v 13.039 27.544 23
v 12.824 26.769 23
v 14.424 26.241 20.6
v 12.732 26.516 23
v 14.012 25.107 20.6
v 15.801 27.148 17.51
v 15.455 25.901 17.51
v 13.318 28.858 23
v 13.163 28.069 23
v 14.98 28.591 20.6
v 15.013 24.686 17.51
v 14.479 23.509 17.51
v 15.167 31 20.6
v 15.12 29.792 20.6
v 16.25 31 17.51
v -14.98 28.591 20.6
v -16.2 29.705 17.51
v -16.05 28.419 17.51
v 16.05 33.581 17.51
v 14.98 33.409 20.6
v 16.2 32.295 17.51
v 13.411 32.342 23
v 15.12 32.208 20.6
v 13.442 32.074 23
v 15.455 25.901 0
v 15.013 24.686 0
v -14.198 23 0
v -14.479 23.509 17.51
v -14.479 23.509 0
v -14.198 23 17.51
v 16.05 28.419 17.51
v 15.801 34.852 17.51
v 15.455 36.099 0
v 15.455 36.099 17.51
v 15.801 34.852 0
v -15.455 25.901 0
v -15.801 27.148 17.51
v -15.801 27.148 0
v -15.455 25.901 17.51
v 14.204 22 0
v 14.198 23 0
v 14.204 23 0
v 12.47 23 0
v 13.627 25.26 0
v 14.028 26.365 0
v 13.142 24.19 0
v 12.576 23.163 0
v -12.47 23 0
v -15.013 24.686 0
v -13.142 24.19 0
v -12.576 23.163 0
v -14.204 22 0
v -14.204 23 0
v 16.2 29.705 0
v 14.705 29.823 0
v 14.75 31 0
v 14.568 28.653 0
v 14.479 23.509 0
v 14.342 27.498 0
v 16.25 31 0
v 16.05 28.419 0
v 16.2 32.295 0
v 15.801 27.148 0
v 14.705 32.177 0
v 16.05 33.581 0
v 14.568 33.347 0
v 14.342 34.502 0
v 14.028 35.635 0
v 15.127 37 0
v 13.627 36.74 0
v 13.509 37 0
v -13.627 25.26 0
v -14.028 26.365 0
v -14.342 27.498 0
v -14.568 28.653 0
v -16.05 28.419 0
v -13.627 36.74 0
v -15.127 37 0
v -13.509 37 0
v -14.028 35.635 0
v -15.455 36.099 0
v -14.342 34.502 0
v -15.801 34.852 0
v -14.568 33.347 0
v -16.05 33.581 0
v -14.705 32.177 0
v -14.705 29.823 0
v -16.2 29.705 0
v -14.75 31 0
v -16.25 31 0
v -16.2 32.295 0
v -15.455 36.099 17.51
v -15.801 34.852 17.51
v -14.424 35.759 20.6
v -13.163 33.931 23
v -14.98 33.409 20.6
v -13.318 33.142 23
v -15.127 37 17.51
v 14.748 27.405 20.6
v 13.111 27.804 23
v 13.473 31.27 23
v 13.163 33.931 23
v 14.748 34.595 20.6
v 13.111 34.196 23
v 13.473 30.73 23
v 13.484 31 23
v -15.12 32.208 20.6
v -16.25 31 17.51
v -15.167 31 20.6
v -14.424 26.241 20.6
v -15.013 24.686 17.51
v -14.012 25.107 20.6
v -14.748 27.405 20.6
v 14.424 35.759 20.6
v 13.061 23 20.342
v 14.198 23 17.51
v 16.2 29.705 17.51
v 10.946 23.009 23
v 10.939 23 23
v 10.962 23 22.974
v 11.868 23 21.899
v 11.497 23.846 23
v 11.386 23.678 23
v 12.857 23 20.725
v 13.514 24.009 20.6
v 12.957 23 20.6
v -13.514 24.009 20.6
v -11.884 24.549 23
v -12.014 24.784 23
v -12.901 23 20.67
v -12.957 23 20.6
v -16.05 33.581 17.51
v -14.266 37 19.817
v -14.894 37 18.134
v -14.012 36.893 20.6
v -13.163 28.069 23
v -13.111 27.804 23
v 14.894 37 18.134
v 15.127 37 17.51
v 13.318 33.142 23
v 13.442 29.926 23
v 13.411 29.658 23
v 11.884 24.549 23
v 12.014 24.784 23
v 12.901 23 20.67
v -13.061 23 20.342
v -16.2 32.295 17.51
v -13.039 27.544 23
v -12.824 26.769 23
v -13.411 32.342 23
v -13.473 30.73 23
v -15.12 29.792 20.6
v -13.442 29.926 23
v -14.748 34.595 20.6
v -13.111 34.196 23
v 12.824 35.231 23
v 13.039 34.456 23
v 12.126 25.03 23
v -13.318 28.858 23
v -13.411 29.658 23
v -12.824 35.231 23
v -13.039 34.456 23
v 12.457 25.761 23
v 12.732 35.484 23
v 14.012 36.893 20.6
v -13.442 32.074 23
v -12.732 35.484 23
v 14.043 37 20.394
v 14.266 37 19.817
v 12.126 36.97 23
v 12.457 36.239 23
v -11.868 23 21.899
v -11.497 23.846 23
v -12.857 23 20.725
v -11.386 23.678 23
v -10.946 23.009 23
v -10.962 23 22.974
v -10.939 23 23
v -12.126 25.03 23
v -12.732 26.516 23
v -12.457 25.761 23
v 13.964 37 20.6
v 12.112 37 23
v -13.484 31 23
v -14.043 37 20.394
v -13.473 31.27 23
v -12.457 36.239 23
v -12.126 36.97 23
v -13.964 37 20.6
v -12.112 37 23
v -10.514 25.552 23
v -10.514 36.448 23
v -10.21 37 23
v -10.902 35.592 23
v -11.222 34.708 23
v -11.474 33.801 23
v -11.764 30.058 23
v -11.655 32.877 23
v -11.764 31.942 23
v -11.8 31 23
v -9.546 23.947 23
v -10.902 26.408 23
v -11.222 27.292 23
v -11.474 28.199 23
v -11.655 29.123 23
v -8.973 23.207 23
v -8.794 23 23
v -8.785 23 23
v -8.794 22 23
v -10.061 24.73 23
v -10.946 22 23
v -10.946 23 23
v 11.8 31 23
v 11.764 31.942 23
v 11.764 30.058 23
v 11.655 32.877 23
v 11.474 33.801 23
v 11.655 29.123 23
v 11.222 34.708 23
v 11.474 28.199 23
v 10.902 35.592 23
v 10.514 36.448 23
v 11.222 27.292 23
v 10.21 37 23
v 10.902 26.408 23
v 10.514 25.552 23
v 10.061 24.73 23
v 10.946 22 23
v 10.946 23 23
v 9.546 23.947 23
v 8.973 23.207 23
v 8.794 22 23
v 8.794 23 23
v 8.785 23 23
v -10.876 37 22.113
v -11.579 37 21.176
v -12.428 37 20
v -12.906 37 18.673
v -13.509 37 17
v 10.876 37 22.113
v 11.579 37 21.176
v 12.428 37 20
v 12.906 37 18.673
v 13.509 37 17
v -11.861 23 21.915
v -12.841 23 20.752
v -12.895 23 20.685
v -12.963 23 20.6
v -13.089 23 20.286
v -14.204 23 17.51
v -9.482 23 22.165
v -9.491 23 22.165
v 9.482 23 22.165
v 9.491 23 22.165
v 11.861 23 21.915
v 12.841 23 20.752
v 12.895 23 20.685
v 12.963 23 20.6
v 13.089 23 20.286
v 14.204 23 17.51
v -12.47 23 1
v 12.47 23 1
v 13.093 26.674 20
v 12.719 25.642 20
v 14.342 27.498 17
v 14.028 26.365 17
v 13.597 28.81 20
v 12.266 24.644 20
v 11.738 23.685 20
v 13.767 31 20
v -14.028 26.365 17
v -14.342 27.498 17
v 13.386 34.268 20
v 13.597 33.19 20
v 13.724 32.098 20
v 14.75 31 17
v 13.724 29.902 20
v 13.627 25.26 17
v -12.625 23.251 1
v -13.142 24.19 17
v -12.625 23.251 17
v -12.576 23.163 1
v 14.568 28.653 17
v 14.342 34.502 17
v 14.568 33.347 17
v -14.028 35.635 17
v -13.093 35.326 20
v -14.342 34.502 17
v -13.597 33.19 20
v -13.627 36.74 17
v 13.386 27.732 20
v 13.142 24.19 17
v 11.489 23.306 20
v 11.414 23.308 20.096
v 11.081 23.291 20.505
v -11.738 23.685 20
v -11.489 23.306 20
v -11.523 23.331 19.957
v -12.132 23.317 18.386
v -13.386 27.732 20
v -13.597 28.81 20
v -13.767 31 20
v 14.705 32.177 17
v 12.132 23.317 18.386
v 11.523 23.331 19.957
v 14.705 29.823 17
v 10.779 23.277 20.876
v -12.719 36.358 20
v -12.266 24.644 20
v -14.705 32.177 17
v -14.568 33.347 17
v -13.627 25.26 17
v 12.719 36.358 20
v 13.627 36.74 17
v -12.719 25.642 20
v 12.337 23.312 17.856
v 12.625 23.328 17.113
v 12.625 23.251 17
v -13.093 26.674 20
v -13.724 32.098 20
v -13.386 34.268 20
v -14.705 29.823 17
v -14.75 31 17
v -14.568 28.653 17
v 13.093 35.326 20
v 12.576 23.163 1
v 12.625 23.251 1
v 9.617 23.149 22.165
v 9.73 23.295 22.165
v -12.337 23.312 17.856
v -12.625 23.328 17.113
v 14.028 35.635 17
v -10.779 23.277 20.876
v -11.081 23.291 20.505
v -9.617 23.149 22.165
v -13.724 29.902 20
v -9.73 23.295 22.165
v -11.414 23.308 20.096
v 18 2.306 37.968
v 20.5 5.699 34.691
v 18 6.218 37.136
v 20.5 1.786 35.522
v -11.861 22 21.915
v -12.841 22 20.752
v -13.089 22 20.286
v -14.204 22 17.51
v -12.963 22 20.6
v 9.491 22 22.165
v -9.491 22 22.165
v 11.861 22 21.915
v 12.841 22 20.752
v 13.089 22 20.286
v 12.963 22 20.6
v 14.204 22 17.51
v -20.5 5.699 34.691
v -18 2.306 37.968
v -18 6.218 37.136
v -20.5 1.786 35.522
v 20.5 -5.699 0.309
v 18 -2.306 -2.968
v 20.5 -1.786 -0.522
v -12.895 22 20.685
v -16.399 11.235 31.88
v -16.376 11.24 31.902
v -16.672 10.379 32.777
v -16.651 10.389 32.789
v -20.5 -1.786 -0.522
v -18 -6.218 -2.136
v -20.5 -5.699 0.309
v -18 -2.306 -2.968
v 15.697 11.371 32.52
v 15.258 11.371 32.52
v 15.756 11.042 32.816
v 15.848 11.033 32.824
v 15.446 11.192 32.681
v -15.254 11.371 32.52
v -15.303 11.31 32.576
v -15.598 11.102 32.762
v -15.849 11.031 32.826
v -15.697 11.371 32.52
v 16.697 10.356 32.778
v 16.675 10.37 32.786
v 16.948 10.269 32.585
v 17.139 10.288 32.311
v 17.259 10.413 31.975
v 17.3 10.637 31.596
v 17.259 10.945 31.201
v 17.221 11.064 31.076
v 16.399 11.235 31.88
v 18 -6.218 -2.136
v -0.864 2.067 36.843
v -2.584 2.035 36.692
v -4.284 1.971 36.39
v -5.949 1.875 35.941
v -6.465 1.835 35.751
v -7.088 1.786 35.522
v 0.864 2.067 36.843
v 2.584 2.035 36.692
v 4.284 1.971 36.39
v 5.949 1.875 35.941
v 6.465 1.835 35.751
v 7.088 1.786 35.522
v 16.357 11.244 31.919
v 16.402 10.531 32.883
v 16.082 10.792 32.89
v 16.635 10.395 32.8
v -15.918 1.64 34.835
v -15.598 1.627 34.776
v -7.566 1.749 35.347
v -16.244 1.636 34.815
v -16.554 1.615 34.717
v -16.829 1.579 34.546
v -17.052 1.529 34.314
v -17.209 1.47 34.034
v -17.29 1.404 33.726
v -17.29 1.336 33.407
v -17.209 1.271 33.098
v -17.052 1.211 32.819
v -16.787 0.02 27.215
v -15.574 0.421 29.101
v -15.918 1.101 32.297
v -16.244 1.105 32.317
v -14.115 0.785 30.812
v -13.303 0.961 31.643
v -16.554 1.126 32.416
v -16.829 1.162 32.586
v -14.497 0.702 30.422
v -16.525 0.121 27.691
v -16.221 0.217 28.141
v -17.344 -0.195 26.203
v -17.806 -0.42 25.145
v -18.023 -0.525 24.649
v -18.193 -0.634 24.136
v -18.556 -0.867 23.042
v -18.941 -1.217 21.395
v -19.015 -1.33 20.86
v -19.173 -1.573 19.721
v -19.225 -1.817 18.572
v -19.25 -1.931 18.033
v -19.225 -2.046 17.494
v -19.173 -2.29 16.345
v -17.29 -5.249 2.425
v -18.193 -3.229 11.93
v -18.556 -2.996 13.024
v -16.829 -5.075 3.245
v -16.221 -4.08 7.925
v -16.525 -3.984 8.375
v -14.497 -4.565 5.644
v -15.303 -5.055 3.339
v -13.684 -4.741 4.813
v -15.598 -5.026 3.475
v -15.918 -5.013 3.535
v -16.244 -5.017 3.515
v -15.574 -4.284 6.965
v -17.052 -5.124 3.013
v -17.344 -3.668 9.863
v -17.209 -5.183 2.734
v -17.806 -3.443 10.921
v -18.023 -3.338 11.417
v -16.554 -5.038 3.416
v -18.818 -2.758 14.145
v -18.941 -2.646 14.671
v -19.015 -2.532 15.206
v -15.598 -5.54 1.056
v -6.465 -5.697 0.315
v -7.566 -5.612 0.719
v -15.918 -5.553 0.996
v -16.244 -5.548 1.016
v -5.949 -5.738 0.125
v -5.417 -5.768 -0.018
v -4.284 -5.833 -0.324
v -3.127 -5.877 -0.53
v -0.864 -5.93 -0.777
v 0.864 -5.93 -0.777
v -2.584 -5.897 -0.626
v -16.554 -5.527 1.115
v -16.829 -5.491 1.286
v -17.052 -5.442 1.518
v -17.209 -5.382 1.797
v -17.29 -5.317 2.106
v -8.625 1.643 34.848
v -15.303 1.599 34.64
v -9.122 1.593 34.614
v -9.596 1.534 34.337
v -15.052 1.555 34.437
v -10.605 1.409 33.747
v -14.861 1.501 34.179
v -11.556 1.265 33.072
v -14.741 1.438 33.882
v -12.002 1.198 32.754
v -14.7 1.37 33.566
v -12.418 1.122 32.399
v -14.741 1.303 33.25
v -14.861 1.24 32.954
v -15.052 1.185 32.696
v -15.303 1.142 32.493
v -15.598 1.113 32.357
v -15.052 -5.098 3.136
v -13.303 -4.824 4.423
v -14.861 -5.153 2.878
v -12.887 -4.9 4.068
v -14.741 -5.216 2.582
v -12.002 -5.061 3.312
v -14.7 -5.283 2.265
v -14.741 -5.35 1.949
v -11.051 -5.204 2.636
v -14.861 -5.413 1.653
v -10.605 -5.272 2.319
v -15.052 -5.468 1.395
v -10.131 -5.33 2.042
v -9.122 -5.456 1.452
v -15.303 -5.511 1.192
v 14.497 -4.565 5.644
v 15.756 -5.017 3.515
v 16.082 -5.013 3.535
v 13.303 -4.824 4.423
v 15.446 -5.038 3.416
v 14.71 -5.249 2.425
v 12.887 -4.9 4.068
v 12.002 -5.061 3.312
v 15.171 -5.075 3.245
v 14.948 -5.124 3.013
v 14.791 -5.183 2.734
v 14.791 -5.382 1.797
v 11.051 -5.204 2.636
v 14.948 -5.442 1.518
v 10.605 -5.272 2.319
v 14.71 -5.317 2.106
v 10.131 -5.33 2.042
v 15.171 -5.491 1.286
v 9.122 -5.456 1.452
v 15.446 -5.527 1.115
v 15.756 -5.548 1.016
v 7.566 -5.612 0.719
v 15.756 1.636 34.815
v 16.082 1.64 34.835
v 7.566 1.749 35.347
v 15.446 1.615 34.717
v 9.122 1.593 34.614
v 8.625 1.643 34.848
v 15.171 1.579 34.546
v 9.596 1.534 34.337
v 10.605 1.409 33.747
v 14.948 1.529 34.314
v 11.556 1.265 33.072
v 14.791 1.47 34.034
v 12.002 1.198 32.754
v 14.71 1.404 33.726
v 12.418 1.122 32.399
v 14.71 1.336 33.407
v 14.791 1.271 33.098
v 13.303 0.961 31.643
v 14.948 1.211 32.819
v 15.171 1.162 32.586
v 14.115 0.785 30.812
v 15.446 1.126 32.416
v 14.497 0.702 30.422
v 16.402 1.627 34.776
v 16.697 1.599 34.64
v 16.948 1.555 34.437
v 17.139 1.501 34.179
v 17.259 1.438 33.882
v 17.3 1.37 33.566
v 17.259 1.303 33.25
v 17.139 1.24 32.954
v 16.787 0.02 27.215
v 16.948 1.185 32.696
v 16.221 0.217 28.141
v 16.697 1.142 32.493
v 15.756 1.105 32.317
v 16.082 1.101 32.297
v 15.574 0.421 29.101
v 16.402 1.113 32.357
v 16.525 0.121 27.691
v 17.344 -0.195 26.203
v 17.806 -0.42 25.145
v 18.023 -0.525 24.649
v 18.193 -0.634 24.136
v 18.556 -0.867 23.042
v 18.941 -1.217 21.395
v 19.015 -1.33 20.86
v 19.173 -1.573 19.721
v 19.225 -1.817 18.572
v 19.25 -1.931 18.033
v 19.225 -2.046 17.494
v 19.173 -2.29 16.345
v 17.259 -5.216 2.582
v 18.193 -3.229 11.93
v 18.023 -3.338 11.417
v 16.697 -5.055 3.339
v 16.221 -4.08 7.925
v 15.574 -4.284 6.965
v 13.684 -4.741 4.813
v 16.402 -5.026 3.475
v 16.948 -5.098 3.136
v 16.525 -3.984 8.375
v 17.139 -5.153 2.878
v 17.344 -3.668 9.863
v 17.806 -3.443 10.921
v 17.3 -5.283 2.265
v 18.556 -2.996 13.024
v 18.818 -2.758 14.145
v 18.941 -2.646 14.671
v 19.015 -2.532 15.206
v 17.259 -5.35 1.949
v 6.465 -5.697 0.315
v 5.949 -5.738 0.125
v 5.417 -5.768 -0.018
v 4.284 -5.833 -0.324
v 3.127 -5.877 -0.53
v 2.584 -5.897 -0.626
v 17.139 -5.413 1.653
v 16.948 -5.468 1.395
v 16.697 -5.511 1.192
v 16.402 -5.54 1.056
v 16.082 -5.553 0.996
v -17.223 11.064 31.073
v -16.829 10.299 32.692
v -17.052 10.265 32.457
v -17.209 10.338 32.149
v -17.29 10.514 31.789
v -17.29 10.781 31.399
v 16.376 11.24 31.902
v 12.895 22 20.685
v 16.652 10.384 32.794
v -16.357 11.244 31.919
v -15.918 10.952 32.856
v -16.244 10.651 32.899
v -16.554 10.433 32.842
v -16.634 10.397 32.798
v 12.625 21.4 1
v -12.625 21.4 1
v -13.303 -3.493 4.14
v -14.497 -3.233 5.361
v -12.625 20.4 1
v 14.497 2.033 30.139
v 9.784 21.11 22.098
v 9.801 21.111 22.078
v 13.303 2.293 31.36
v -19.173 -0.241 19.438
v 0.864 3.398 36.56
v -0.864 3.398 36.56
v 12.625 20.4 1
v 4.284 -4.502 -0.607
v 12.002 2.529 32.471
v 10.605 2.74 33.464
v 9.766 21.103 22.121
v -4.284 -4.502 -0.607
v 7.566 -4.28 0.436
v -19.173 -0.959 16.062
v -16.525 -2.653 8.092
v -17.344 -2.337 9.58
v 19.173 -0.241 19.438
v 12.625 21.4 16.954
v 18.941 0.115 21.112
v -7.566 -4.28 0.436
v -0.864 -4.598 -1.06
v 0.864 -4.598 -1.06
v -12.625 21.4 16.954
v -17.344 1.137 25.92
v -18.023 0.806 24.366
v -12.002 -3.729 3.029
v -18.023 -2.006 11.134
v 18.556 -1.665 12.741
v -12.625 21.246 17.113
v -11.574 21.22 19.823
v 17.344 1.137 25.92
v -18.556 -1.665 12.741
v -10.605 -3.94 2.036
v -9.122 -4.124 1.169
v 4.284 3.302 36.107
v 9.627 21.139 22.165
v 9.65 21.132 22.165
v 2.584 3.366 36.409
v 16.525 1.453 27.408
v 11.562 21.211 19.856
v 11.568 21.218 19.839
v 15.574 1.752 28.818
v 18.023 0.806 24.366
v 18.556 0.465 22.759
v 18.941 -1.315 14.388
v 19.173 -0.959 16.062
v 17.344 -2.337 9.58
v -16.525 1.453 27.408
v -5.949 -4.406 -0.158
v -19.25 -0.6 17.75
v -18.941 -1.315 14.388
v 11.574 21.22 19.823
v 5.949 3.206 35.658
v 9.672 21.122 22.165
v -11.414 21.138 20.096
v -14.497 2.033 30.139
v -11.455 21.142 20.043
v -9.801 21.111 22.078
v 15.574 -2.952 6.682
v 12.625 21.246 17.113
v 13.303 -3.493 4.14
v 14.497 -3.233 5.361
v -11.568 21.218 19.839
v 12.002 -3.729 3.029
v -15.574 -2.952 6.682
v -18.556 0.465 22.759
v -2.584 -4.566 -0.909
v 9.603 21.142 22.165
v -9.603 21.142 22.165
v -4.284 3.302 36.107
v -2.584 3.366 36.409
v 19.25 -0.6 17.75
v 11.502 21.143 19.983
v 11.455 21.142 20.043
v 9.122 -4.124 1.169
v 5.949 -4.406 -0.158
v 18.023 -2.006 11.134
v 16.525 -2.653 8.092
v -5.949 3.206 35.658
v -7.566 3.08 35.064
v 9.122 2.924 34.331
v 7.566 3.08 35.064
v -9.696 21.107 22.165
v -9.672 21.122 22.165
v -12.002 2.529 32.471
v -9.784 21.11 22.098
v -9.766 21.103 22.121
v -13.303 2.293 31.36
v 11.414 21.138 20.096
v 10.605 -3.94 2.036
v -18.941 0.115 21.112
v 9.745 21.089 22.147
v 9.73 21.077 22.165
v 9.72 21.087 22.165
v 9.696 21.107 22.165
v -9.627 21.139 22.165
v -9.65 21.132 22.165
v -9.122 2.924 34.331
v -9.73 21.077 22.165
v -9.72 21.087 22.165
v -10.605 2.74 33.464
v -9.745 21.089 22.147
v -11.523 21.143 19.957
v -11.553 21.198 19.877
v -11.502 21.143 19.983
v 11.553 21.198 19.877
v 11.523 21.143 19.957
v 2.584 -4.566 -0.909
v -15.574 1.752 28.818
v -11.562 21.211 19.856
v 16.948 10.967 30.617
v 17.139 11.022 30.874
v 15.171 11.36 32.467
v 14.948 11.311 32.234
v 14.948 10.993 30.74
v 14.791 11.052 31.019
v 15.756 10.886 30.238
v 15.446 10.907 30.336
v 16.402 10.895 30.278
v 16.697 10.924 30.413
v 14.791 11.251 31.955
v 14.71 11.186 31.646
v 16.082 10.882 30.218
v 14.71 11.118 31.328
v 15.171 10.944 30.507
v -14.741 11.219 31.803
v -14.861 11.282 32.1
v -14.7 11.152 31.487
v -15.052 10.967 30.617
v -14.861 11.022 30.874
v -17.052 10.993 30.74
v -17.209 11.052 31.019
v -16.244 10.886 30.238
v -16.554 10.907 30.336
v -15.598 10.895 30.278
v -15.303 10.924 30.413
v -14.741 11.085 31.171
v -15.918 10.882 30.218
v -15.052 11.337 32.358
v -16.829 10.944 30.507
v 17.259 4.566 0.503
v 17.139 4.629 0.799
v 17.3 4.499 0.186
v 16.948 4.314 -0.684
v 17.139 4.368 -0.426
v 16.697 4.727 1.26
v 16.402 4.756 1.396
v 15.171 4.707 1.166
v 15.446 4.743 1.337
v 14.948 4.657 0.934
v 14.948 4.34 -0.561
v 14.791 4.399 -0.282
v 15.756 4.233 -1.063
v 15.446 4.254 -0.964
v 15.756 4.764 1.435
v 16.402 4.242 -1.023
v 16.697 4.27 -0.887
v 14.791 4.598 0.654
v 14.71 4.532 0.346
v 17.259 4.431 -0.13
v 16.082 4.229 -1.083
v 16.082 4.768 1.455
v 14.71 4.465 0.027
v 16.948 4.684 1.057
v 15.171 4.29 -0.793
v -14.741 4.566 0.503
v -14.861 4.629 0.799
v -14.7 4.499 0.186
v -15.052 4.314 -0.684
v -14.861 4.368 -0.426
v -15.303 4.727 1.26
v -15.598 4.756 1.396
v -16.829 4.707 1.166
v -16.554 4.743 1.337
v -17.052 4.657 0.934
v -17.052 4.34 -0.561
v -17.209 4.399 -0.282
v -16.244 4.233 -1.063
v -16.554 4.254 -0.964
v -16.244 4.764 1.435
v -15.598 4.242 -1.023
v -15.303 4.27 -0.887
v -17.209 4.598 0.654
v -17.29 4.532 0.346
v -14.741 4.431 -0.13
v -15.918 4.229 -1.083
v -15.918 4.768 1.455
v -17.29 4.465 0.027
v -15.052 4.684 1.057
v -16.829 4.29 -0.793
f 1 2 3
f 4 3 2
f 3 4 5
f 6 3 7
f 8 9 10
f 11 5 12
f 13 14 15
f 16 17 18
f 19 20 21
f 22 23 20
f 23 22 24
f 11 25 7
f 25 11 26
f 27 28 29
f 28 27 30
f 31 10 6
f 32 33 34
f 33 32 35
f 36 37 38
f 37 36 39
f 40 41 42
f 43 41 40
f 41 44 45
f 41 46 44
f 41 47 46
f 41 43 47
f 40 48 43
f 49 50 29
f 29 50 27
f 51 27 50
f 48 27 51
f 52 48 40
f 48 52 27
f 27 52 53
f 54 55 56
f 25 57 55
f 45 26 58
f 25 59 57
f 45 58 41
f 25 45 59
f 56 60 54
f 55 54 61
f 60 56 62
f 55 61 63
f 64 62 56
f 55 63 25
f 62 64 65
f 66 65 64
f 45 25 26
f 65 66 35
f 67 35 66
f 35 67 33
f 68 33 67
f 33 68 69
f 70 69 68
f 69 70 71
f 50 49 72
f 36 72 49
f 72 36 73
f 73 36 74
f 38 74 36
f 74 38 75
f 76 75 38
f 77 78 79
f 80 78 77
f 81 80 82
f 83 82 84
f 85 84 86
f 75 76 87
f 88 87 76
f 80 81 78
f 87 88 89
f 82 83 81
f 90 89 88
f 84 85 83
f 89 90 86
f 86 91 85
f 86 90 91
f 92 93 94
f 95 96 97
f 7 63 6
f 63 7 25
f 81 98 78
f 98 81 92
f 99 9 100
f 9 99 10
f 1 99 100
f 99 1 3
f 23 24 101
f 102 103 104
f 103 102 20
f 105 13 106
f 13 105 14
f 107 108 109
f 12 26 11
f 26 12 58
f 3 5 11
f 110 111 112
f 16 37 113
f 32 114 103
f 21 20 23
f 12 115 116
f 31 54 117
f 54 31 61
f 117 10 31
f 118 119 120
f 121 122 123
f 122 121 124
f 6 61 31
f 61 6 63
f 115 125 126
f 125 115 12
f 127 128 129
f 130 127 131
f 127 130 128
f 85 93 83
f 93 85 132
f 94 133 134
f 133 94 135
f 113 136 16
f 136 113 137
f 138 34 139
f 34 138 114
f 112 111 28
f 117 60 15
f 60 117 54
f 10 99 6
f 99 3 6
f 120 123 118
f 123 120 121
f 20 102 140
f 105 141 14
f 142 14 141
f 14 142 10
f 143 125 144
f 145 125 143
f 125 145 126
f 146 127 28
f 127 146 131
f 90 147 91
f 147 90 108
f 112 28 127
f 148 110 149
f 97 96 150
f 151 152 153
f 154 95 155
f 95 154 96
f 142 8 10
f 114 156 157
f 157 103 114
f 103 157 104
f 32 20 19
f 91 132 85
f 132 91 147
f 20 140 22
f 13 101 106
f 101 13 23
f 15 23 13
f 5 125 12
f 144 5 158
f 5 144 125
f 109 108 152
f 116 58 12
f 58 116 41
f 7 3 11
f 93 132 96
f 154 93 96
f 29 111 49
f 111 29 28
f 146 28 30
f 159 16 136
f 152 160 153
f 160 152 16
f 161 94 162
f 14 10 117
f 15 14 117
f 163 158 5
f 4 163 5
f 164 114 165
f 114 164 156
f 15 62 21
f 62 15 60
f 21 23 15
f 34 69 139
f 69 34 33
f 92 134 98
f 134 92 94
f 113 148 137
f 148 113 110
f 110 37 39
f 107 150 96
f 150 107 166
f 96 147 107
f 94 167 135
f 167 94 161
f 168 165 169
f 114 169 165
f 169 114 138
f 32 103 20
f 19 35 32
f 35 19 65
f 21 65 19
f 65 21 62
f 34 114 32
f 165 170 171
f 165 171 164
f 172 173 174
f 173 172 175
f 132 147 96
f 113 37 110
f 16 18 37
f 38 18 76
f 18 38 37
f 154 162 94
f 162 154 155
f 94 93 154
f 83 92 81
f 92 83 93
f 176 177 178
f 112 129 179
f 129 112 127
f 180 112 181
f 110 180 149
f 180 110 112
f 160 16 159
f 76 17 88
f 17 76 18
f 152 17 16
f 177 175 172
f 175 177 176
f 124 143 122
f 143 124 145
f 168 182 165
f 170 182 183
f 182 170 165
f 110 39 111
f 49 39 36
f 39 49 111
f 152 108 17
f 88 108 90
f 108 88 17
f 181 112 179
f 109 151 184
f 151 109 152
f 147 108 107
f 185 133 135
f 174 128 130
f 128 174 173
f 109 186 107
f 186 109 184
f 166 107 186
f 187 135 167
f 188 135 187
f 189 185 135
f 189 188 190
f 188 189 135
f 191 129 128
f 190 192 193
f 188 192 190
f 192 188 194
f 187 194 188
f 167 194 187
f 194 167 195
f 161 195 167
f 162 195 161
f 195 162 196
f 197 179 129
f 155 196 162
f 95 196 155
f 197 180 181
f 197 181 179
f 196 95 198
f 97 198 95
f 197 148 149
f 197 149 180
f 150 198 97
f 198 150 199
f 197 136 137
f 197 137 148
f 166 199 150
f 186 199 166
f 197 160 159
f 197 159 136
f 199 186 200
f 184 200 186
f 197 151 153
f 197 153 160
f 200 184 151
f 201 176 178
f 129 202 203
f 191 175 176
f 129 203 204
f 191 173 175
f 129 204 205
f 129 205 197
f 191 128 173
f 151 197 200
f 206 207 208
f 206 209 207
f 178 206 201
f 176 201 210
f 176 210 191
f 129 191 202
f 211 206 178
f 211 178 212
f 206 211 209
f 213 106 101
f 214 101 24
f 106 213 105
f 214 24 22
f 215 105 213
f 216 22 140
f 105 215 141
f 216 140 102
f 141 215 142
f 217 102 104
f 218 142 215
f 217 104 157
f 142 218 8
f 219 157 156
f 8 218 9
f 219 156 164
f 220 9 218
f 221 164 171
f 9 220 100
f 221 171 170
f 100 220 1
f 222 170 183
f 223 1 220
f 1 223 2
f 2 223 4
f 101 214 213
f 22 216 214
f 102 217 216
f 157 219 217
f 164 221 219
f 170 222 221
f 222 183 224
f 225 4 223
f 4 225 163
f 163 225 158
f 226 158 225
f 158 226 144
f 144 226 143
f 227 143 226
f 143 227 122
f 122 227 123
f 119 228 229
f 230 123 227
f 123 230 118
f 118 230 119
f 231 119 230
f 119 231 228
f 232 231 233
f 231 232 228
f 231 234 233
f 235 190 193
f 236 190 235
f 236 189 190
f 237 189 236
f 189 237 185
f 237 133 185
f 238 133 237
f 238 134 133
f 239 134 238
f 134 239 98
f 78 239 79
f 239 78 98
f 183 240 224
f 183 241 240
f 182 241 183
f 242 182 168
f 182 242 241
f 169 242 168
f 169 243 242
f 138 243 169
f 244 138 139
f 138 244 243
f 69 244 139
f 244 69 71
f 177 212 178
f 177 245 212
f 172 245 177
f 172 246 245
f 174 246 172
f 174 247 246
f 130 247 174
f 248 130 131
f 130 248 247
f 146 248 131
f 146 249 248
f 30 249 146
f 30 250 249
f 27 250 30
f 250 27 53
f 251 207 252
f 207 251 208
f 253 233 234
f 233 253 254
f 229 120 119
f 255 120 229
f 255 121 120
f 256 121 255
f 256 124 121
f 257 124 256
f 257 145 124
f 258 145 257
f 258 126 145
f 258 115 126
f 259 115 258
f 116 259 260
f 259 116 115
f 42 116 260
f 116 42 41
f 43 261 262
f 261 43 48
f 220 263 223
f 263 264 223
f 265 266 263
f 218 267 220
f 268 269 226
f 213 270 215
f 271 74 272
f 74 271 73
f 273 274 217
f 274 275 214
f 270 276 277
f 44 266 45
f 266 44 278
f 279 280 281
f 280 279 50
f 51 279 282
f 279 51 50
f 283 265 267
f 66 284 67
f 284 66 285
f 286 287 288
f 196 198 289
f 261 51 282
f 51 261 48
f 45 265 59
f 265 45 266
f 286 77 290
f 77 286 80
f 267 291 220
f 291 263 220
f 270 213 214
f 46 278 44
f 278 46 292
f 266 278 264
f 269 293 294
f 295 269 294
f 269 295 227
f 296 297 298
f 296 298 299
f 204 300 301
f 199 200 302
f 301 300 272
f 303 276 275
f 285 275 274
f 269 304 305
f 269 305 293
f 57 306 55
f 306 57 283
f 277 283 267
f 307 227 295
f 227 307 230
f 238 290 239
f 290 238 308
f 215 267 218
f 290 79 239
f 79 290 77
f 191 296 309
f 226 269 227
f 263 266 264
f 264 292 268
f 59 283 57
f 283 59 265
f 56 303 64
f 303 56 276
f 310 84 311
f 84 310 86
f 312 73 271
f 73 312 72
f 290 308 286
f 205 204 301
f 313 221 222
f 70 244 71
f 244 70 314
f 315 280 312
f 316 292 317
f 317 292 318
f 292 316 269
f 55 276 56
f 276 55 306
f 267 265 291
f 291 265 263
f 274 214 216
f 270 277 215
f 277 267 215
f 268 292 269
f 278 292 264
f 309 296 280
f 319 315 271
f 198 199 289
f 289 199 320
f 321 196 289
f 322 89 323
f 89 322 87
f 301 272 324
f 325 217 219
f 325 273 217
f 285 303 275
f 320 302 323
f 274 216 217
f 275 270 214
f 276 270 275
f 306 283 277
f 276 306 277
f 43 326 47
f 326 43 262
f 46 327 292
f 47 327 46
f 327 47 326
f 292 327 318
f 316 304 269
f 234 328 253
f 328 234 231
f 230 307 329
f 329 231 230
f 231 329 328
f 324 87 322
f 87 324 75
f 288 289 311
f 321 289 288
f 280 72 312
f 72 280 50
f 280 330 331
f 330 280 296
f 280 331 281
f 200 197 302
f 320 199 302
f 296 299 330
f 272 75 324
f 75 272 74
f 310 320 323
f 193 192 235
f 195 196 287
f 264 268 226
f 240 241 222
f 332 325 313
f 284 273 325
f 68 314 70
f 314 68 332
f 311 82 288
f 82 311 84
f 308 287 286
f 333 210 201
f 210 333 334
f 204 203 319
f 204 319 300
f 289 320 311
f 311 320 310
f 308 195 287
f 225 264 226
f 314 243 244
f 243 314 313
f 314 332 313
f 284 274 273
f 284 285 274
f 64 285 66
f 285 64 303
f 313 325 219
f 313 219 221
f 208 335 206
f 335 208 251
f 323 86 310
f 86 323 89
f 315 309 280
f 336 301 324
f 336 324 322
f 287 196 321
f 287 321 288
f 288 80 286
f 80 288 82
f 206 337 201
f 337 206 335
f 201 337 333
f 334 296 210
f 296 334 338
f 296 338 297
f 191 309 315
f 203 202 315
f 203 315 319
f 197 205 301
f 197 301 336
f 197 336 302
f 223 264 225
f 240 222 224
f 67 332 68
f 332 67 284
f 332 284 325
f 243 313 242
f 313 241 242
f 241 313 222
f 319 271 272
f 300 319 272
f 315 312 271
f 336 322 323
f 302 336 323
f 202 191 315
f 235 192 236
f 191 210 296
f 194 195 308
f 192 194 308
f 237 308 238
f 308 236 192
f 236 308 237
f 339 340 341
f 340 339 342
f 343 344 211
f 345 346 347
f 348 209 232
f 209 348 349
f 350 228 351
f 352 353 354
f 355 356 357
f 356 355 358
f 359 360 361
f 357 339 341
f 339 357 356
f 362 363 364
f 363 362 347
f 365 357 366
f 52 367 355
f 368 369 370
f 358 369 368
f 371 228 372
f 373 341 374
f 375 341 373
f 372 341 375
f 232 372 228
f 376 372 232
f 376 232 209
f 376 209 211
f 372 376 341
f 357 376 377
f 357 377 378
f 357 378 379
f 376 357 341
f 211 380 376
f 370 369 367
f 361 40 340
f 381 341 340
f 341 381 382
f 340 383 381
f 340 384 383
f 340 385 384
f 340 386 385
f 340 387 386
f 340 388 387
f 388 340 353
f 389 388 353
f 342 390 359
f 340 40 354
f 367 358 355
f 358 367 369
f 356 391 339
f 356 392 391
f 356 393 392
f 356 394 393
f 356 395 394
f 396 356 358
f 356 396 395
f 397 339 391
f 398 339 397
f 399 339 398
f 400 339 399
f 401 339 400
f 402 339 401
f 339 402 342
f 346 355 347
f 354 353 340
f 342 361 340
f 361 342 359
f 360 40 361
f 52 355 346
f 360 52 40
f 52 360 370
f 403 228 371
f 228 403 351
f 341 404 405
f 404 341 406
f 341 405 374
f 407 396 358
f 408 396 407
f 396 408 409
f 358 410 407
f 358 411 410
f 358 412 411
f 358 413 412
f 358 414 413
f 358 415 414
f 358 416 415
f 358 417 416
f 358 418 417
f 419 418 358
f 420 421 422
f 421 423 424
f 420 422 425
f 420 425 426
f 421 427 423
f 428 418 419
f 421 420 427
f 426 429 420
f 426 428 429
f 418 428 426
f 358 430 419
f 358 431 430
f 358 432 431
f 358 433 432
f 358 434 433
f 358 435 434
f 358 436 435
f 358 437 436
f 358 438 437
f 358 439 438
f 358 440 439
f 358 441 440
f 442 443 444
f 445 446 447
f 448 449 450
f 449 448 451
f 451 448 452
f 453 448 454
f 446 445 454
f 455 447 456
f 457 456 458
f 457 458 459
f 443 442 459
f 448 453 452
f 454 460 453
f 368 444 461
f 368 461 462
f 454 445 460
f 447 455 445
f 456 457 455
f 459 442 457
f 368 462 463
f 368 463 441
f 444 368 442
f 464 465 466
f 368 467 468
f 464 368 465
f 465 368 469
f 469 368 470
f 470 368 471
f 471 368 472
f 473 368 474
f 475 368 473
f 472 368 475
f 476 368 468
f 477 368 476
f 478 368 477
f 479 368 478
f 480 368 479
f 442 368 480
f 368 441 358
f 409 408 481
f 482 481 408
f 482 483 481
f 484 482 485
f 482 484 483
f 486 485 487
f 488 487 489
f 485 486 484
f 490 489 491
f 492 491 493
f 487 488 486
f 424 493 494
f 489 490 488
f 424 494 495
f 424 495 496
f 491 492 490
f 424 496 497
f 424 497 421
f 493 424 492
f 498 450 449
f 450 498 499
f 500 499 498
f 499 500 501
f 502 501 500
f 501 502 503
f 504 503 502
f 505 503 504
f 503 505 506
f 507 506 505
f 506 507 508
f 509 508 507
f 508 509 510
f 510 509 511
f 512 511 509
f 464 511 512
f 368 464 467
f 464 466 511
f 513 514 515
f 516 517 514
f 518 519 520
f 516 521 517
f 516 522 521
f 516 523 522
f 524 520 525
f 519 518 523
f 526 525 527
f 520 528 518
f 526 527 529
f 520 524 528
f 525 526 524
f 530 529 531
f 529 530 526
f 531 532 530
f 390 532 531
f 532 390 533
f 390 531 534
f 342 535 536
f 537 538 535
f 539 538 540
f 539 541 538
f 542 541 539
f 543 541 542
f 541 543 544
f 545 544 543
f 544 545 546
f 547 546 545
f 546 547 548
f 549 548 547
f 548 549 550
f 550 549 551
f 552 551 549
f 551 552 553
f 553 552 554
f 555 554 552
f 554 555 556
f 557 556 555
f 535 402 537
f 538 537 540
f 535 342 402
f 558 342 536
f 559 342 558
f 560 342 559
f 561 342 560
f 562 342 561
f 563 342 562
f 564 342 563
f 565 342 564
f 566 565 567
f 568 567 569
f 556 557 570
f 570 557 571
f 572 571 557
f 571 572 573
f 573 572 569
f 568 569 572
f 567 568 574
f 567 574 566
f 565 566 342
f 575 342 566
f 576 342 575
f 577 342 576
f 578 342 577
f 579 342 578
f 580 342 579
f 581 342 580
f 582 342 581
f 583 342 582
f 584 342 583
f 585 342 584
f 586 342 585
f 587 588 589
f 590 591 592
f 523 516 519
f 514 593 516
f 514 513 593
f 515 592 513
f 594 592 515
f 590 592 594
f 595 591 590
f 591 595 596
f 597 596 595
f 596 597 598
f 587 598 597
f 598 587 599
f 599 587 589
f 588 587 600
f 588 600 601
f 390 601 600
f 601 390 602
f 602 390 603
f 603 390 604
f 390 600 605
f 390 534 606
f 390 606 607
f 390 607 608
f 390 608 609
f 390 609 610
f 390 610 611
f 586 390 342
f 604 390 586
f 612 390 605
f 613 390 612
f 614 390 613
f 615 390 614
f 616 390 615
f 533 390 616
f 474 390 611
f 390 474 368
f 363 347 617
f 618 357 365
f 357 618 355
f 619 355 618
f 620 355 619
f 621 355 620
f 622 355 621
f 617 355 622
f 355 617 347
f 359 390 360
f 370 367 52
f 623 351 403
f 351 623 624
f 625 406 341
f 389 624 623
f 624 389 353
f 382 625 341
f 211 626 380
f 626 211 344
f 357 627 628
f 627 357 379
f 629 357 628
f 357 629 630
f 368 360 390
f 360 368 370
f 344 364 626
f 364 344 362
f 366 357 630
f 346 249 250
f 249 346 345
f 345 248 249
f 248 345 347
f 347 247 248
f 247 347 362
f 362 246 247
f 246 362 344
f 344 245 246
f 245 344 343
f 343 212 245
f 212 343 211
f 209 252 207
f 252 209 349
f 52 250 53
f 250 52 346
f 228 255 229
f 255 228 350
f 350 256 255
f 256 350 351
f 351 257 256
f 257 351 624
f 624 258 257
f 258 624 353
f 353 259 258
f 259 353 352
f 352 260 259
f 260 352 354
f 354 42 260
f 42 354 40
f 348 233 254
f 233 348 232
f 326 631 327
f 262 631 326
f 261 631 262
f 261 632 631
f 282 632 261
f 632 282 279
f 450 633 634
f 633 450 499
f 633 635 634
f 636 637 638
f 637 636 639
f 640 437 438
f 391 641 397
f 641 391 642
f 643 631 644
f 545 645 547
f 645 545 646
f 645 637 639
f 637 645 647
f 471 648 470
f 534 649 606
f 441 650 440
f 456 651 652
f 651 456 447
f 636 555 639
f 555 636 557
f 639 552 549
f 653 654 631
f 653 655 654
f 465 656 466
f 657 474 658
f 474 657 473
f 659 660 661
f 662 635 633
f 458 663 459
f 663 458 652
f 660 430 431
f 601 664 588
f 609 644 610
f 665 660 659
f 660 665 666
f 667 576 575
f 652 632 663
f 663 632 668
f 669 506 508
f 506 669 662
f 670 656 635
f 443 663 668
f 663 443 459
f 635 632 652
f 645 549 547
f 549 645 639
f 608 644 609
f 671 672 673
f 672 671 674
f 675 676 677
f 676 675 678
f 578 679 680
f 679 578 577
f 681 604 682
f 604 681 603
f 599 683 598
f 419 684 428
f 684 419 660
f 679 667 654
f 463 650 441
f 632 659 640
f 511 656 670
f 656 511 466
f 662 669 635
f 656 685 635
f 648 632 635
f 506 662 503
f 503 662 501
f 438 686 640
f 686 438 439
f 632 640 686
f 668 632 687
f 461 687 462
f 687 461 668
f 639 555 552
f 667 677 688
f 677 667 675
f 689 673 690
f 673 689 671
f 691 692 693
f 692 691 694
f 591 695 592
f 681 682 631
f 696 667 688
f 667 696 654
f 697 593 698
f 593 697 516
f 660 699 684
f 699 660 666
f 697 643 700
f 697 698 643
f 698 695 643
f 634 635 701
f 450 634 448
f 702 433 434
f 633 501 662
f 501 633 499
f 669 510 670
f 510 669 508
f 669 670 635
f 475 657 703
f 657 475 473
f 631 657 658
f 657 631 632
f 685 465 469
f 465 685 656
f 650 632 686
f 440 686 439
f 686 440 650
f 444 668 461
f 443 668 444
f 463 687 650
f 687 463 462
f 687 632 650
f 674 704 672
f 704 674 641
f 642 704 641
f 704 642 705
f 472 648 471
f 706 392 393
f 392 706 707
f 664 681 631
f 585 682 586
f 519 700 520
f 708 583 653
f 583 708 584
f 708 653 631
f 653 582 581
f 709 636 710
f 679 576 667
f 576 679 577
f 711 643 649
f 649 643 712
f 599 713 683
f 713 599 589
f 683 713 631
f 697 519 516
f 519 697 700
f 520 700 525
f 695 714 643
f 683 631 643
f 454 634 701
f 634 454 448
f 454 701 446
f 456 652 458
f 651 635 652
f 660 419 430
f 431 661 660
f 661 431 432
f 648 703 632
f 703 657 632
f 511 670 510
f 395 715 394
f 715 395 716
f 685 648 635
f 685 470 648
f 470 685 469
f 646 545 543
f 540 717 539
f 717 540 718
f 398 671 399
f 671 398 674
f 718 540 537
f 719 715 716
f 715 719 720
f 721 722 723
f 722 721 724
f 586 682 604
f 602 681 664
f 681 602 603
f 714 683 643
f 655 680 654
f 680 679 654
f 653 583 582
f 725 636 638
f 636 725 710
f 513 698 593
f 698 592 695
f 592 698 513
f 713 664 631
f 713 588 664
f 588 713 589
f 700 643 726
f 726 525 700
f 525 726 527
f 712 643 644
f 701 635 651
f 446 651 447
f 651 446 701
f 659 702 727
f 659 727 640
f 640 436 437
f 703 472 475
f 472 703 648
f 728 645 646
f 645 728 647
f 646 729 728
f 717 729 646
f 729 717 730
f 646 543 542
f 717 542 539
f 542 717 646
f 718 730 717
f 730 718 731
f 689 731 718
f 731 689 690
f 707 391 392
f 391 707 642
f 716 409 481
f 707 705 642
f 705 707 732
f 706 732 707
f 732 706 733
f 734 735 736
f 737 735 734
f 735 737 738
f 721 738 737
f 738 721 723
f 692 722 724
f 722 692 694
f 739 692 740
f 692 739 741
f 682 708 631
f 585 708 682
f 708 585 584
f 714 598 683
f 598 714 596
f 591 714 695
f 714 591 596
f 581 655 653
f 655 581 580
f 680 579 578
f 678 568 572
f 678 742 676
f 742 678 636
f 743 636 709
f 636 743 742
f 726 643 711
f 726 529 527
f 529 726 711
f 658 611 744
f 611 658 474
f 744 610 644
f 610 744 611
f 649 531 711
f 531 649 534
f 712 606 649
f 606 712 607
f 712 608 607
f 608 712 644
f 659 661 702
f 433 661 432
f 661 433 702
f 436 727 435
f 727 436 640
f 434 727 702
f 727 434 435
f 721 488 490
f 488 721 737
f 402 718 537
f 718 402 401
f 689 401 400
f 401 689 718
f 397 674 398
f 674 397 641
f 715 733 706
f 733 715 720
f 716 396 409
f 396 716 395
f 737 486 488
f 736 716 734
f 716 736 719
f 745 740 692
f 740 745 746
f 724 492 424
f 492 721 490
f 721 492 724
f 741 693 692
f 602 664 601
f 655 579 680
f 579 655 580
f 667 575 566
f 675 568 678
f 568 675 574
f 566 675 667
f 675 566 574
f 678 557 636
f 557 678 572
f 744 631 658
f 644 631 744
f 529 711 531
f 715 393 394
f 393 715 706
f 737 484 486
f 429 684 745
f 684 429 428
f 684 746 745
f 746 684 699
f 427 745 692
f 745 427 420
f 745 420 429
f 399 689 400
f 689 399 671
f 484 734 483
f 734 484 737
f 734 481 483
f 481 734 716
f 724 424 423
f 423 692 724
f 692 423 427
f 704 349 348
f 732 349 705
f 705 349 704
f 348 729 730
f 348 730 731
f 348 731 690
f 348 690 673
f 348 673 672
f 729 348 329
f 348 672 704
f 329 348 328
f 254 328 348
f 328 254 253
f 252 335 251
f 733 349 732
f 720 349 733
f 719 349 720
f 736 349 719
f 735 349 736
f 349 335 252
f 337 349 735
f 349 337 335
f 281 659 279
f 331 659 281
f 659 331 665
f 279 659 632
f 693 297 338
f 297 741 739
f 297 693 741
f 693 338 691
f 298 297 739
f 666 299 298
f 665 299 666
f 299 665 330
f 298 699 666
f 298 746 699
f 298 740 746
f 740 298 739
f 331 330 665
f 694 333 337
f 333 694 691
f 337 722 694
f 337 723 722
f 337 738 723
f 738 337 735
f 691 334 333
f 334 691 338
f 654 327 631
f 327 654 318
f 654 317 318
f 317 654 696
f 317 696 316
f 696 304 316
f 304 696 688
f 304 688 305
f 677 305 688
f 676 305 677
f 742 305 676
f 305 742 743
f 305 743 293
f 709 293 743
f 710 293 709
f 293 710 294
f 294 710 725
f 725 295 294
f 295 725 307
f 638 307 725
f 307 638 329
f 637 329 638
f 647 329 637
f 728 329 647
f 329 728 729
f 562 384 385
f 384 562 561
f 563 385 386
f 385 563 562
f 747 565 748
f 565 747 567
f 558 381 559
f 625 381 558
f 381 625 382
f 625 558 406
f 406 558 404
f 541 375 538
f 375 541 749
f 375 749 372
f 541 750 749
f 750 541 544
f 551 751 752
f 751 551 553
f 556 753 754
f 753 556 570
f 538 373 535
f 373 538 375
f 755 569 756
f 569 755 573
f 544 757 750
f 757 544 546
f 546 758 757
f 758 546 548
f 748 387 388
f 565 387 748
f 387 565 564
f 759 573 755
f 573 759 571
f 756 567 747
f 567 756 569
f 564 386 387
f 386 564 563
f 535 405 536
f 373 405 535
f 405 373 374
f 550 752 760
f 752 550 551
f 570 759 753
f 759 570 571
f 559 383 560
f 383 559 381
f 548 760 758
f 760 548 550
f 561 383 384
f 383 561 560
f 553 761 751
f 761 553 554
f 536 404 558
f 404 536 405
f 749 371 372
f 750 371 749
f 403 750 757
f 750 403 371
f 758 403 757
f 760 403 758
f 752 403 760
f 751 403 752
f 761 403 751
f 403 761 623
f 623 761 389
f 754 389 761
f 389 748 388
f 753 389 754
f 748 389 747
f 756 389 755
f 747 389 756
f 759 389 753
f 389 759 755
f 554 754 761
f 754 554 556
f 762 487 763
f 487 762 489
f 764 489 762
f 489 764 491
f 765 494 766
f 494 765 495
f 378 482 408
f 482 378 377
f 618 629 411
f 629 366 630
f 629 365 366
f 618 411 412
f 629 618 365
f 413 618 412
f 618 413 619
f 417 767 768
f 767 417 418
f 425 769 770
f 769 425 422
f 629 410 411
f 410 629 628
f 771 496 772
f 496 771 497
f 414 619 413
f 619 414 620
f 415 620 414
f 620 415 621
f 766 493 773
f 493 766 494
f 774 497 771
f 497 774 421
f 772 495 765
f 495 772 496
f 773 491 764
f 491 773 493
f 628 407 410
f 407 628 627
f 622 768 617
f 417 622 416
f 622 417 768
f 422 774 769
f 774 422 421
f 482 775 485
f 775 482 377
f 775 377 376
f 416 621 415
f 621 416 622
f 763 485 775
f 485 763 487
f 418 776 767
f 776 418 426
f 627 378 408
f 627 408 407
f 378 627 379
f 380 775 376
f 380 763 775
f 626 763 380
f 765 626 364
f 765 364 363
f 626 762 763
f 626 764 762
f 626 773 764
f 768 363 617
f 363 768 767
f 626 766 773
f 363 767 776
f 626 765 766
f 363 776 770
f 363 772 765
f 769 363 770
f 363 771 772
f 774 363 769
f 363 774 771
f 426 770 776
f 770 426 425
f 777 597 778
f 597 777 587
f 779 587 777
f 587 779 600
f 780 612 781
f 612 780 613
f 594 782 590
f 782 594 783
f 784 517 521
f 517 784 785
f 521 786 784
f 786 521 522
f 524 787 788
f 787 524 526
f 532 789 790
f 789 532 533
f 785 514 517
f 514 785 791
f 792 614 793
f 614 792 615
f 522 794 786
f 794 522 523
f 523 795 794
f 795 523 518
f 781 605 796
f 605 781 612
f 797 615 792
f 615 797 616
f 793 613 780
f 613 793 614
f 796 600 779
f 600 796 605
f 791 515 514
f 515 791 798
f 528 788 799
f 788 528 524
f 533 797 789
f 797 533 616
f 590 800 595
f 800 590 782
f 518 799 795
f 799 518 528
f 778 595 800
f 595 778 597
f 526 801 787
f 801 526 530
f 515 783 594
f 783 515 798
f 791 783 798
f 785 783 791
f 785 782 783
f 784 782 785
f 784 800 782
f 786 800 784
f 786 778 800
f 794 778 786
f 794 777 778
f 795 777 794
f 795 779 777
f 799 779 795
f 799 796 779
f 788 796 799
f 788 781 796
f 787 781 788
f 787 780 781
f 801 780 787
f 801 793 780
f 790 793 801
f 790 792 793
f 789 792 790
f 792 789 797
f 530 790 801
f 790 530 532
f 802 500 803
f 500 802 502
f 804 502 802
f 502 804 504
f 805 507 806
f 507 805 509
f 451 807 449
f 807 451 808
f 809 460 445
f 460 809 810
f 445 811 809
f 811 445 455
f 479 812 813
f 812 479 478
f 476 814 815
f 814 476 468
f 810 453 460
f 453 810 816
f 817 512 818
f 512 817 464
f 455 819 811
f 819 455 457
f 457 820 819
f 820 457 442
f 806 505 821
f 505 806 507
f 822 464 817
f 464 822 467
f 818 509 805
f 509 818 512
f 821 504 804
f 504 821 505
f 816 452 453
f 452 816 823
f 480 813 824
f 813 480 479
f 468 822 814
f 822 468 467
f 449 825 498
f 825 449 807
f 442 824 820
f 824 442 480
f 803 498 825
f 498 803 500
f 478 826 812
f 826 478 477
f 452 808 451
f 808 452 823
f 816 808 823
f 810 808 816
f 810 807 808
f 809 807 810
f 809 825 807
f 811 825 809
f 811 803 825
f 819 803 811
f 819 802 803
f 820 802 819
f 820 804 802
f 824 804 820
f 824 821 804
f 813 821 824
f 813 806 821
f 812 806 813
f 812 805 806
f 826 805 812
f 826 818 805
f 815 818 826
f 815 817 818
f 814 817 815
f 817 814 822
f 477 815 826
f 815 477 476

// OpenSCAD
// file: ../Dollo/NEW_Long_ties/globals.scad
/*
Most things in this file is represented as one millimeter, so keep that in mind while changing things.
Some of the setting are not mm but at variables that you can set, such as 2*x=2x and you are setting what x is.
I will try to specify when things are variables and not exact measurements.
*/

// printer slop
slop = 0.15;

obj_leg = 30;
leg_length = 5.5;
small_number = 0.001;
metal_core_rode_global = 5;


///////////////// number of holes /////////////////////
z_hole_number = 8;
other_holes = 8;

///////////////// Pins /////////////////////

//pins that poke out
ball_size = 10;
pin_height = 20;
pin_diameter = 6;


//holes
hole_ball_size = ball_size;
hole_pin_height = pin_height;
hole_pin_diameter = pin_diameter;

///////////////// Z THINGS /////////////////////

berring_slot_width = 7.5;
berring_slot_depth = 6.5;
metal_core_rode = 5;

///////////////// X THINGS /////////////////////

//male dove tails
male_dove_max_width=8;
male_dove_min_width=5;
male_dove_depth=5;
male_dove_height=obj_leg/2;

function scaled_male_dove_max_width() = male_dove_max_width - slop;
function scaled_male_dove_min_width() = male_dove_min_width - slop;
function scaled_male_dove_depth() = male_dove_depth - slop;

//female dove tails, this is found on the y mounts
girl_max_width=11;
girl_min_width=5;
girl_depth=5;
girl_height=obj_leg;


///////////////// Y THINGS /////////////////////
/*
The Y is so normal that all of those global variables at the top should change all of the setting in it, this section is set her incase there are variables set in the future development of this project.
*/

// stepper
motor_side_length = 43.2;
motor_bolt_hole_distance = 31;
motor_center_hole = 23;
motor_shaft_dia = 5;
motor_shaft_hole_dia = 5+2*slop;

// bolts etc.
bolt_hole_dia = 3+2*slop;
bolt_head_hole_dia = 5.8;

m4_bolt_hole_dia = 4+2*slop;
m4_bolt_head_hole_dia = 6.8+2*slop;


m3_nut_side = 5.65;
m3_nut_height = 2.3;
m4_nut_side = 6.85;
m4_nut_height = 3.1;

// threaded rod
lifter_rod_diam = 9.86;
hole_threaded_rod = lifter_rod_diam+2*slop;

// for the extensions
metal_rod_size = 9;
// file: ../PCParts/common.scad
atx_psu_width = 150;
atx_psu_height = 86;

card_spacing = 20.32;

fan_connector_width = 6.1;
fan_connector_length = 7.9;

fan_92mm = 92;
fan_92mm_bolt_offset = 82.5/2;

module mock_mobo() {
    $fn=50;
    difference() {
        cube([304.8, 243.84, 2]);
        translate([6.35+281.94,10.16,0]) cylinder(d=4, h=3);
        translate([6.35+281.94,10.16+154.94,0]) cylinder(d=4, h=3);
        translate([6.35+281.94,10.16+227.33,0]) cylinder(d=4, h=3);

        translate([6.35+157.48+45.72,10,0]) cylinder(d=4, h=3);

        translate([6.35+157.48,10.16,0]) cylinder(d=4, h=3);
        translate([6.35+157.48,10.16+154.94,0]) cylinder(d=4, h=3);
        translate([6.35+157.48,10.16+227.33,0]) cylinder(d=4, h=3);

        translate([6.35,22.86,0]) cylinder(d=4, h=3);
        translate([6.35,10.16+154.94,0]) cylinder(d=4, h=3);
        translate([6.35,10.16+227.33,0]) cylinder(d=4, h=3);
    }
}

module mock_card() {
    $fn=50;
    cube([200, 2, 106.7]);
    translate([-12.3, -15.8+22-19.4, -18.8+119.2]) difference() {
        cube([12.3,19.4,1]);
        translate([6.3, 19.4-1-4.8/2,0]) hull() {
            cylinder(d=4.8,h=2, $fn=40);
            translate([0,5,0]) cylinder(d=4.8,h=2, $fn=40);
        }
    }
    difference() {
        translate([-1,-15.8, -18.8]) cube([1,22, 120.2]);
        translate([-1.3,-15.8, -18.8]) cube([2,(18.8-10.6)/2, 11.2]);
        translate([-1.3,-15.8+10.6+(18.8-10.6)/2, -18.8]) cube([2,(18.8-10.6)/2, 11.2]);
        translate([-1.3,-15.8+18.8, -18.8]) cube([2,5, 116.2]);
        translate([-1.3,-15.8, -18.8+116.2]) cube([2,22-18.8, 5]);
    }
    
}

module mock_mobo_card() {
    
    mock_mobo();
    translate([304.8-142,-1.2,18.8-10.4]) rotate([0,0,90]) mock_card();
    translate([304.8-142+card_spacing,-1.2,18.8-10.4]) rotate([0,0,90]) mock_card();
    translate([304.8-142+2*card_spacing,-1.2,18.8-10.4]) rotate([0,0,90]) mock_card();
    translate([304.8-142+3*card_spacing,-1.2,18.8-10.4]) rotate([0,0,90]) mock_card();
    translate([304.8-142+4*card_spacing,-1.2,18.8-10.4]) rotate([0,0,90]) mock_card();
    translate([304.8-142+5*card_spacing,-1.2,18.8-10.4]) rotate([0,0,90]) mock_card();
    translate([304.8-142+6*card_spacing,-1.2,18.8-10.4]) rotate([0,0,90]) mock_card();
}

module mock_ssd() {
    difference() {
        cube([70, 100, 7.1]);
        translate([9.4,0,6.5]) cube([41.4,7,1]);
        translate([10.4,0,0]) cube([39.4,7,2]);
    }
    translate([0,13.6,3]) rotate([0,-90,0]) cylinder(d=2.5, h=5, $fn=30);
    translate([0,100-9.2,3]) rotate([0,-90,0]) cylinder(d=2.5, h=5, $fn=30);

    translate([70+5,13.6,3]) rotate([0,-90,0]) cylinder(d=2.5, h=5, $fn=30);
    translate([70+5,100-9.2,3]) rotate([0,-90,0]) cylinder(d=2.5, h=5, $fn=30);

}


hd_width = 102;
hd_height = 26.1;

screw_dia = 3.6;

module mock_hd() {
    color("white") difference() {
        cube([hd_width,146,26]);
        translate([0,28.3,6.40]) rotate([0,90,0]) cylinder(d=screw_dia, h=5, $fn=30);
        translate([0,69.8,6.40]) rotate([0,90,0]) cylinder(d=screw_dia, h=5, $fn=30);
        translate([0,129.8,6.40]) rotate([0,90,0]) cylinder(d=screw_dia, h=5, $fn=30);

        translate([hd_width-5,28.3,6.40]) rotate([0,90,0]) cylinder(d=screw_dia, h=5, $fn=30);
        translate([hd_width-5,69.8,6.40]) rotate([0,90,0]) cylinder(d=screw_dia, h=5, $fn=30);
        translate([hd_width-5,129.8,6.40]) rotate([0,90,0]) cylinder(d=screw_dia, h=5, $fn=30);

    }
        
}

module minus_atx_psu_holes(hole=3.2) {
    difference() {
        children();
        translate([-138/2,0,6]) rotate([-90,0,0]) cylinder(d=hole, h=5, $fn=30);
        translate([138/2,0,6]) rotate([-90,0,0]) cylinder(d=hole, h=5, $fn=30);
        translate([138/2,0,6+64]) rotate([-90,0,0]) cylinder(d=hole, h=5, $fn=30);
        translate([-150/2+30,0,atx_psu_height-6]) rotate([-90,0,0]) cylinder(d=hole, h=5, $fn=30);
    }
}

module mock_atx_psu(holes=true, slop=0) {
    w = atx_psu_width+2*slop;
    h = atx_psu_height+2*slop;
    if (holes) {
        minus_atx_psu_holes() {
            translate([-w/2,0,0]) cube([w, 140, h]);
        }
    } else {
        translate([-w/2,0,0]) cube([w, 140, h]);
    }
}


module mock_fan_connector_male(slop=0.2) {
    
    module pin() {
        color("grey") cube([0.75,0.75,14.3],center=true);
    }
    
    w = fan_connector_width + slop;
    l = fan_connector_length + slop;
    
    pin_offset = (5.8-0.75)/2;
    union() {
        color("white") {
            translate([0,0,3.2/2]) cube([w, l,3.2], center=true);
            translate([-w/2+0.9/2,0,3.2+8.5/2]) cube([0.9,5,8.5],center=true);
            translate([-w/2+0.9+0.3/2,0,1.7/2+5.7]) cube([0.3,5,1.7],center=true);
        }
        
        translate([-w/2+2.4,0,14.3/2-3.6]) pin();
        translate([-w/2+2.4,pin_offset,14.3/2-3.6]) pin();
        translate([-w/2+2.4,-pin_offset,14.3/2-3.6]) pin();
    }
}


//mock_mobo();
//mock_card();
//mock_mobo_card();
//mock_ssd();
//mock_atx_psu();
//mock_fan_connector_male();
// file: Prometheus_V2_hotend.scad
stl_path = "../_downloaded/";


prometheus_v2_heat_sink_4mm();


module prometheus_v2_heat_sink_4mm() {
//    %translate([0, 0, 0])
//    intersection() {
//        scale([10, 10, 10])
//        import(str(
//            stl_path,
//            "Prometheus_Hot_End/",
//            "Aluminium_Heat_Sink_V2_4mm.stl"
//        ), convexity=10);
//
////        translate([0, 50/2, 0])
////        cube([50, 50, 100], center=true);
//    }

    difference() {
        union() {
            // fins
            cylinder(d=30, h=1.5, $fn=80);

            translate([0, 0, 3.5])
            cylinder(d=30, h=1.5, $fn=80);

            translate([0, 0, 7])
            cylinder(d=30, h=1, $fn=80);

            translate([0, 0, 10])
            cylinder(d=30, h=1, $fn=80);

            translate([0, 0, 13])
            cylinder(d=30, h=1, $fn=80);

            translate([0, 0, 16])
            cylinder(d=30, h=1, $fn=80);

            translate([0, 0, 19])
            cylinder(d=28, h=1, $fn=80);

            translate([0, 0, 22])
            cylinder(d=24, h=1, $fn=80);

            translate([0, 0, 25])
            cylinder(d=16, h=1, $fn=80);

            // neck
            translate([0, 0, 30.6])
            cylinder(d=16, h=3.5, $fn=80);

            translate([0, 0, 38.7])
            cylinder(d=16, h=4.8, $fn=80);

            // body
            cylinder(d=12, h=43, $fn=50);

            cylinder(d=14, h=23, $fn=50);

            cylinder(d=15, h=20, $fn=50);
        }

        // side cuts
        translate([0, 10/2 + 8, 0])
        cube([40, 10, 60], center=true);

        translate([0, -10/2 - 8, 0])
        cube([40, 10, 60], center=true);

        // inner holes
        cylinder(d=4, h=100, center=true, $fn=60);

        translate([0, 0, 7.5])
        cylinder(d=4.2, h=100, $fn=70);

        hull() {
            translate([0, 0, 30.8])
            cylinder(d=4.2, h=1, $fn=70);

            translate([0, 0, 32.7])
            cylinder(d=8, h=10, $fn=70);
        }

        translate([0, 0, 40.7])
        cylinder(d=14, h=5, $fn=70);

        hull() {
            translate([0, 0, 43])
            cylinder(d=14, h=1, $fn=70);

            translate([0, 0, 44])
            cylinder(d=16, h=1, $fn=70);
        }

        // fan screw holes
        translate([-10, 0, 2.5])
        rotate([90, 0, 0])
        cylinder(d=3, h=20, center=true, $fn=50);

        translate([10, 0, 2.5])
        rotate([90, 0, 0])
        cylinder(d=3, h=20, center=true, $fn=50);

        // heatbreak screw holes
        translate([0, 0, 2.5])
        rotate([90, 0, 0])
        cylinder(d=3, h=20, $fn=50);

        translate([0, 0, 6])
        rotate([90, 0, 0])
        cylinder(d=3, h=20, $fn=50);

    }
}
// main file
include <../Dollo/NEW_Long_ties/include.scad>;
use <Prometheus_V2_hotend.scad>;
use <../PCParts/common.scad>;

$fn = 40;
fan_side = 40;
bolt_hole_distance = 32;

bolt_hole_offset = bolt_hole_distance/2;

wall = 1.5;

stl_path = "../_downloaded/";


//debug();

fan_shroud_40mm();
//fan_shroud_40mm_cube_mount();


module debug() {
    intersection() {
        fan_shroud_40mm();

//        translate([-50, -10, 0])
//        cube([100, 100, 15]);

        //translate([-50, -10, 0])
        //cube([100, 20, 100]);
    }

//    translate([0, -2.1, fan_side/2 + 1/2 - 4.5])
//    rotate([78, 0, 0])
//    translate([0, 0, 10/2])
//    mock_fan_40mm();
}

module hotend_body() {
    hull()
    intersection() {
        prometheus_v2_heat_sink_4mm();

        cube([35, 35, 48], center=true);
    }
}

module arms() {

    x_scale = (29.5 + 2*wall)/30;
    echo(x_scale*30);
    y_scale = (15 + wall)/15;

    difference() {
        intersection() {
            scale([x_scale, y_scale, 1.03])
            hotend_body();

            translate([0, -1, 0])
            cube([34, 14, 46], center=true);
        }
        scale([29.5/30, 1, 1])
        hotend_body();
    }
}

module arms_extension() {
    rotate([-90, 0, 0])
    linear_extrude(1)
    projection(cut=true)
    translate([0, 0, 7.99])
    rotate([90, 0, 0])
    arms();
}

module _body() {
    hull() {
        translate([0, 21, 0])
        arms_extension();

        translate([0, 0, (fan_side + 1)/2 - 3])
        rotate([78, 0, 0])
        chamfered_cube_side(
            fan_side + 1, fan_side + 1, 4,
            2.5, center=true
        );
    }
}

scale_val = (40 - 2*wall)/40;

module _body_scaled() {
    hull() {
        translate([0, 21, 0])
        scale([(27 - 2*wall)/27, 1, 20.5/22.5]) 
        arms_extension();

        translate([0, 0, (fan_side - 1.5)/2 + 1/2 - 3])
        rotate([78, 0, 0])
        cylinder(d=fan_side - 1.5, h=2, $fn=70);
    }
}

module shroud_body() {
    
    difference() {
        union() {
            _body();

            translate([0, 22, 0])
            arms_extension();

            translate([0, 22, 1/2])
            cube([26, 2, 1], center=true);

            translate([0, 31, 0])
            arms();
        }

        translate([0, -0.6, 1])
        _body_scaled();

        translate([0, 24, 1])
        rotate([90, 0, 0])
        linear_extrude(3)
        projection(cut=true)
        translate([0, 0, 22])
        rotate([-90, 0, 0])
        scale([1, 1, 1.01])
        _body_scaled();
    }
}

module _screw_holes() {
    translate([0, 0, fan_side/2 + 1/2 - 3])
    rotate([78, 0, 0])
    union() {
        translate([
            bolt_hole_offset,
            bolt_hole_offset, 0
        ])
        cylinder(d=2.6, h=16, center=true, $fn=25);

        translate([
            -bolt_hole_offset,
            bolt_hole_offset, 0
        ])
        cylinder(d=2.6, h=16, center=true, $fn=25);

        translate([
            bolt_hole_offset,
            -bolt_hole_offset, 0
        ])
        cylinder(d=2.6, h=16, center=true, $fn=25);

        translate([
            -bolt_hole_offset,
            -bolt_hole_offset, 0
        ])
        cylinder(d=2.6, h=16, center=true, $fn=25);
    }
}

module fan_shroud_40mm() {
    difference() {
        shroud_body();

        _screw_holes();
    }
}

module fan_shroud_40mm_cube_mount() {
    difference() {
        union() {
            fan_shroud_40mm();

            difference() {
                translate([-fan_side/2 - 2.5, 2.1, 15])
                rotate([-12, 0, 0])
                chamfered_cube_side(
                    10, 9, 5, 1.5, center=true
                );

                translate([-fan_side/2 + 3, 2, 15])
                rotate([-12, 0, -7])
                cube([5, 10, 10], center=true);

                translate([-24, 2.3, 15])
                rotate([-12, 0, 0])
                cylinder(
                    d=3.3, h=10, center=true, $fn=20
                );
            }
        }
    }
}
